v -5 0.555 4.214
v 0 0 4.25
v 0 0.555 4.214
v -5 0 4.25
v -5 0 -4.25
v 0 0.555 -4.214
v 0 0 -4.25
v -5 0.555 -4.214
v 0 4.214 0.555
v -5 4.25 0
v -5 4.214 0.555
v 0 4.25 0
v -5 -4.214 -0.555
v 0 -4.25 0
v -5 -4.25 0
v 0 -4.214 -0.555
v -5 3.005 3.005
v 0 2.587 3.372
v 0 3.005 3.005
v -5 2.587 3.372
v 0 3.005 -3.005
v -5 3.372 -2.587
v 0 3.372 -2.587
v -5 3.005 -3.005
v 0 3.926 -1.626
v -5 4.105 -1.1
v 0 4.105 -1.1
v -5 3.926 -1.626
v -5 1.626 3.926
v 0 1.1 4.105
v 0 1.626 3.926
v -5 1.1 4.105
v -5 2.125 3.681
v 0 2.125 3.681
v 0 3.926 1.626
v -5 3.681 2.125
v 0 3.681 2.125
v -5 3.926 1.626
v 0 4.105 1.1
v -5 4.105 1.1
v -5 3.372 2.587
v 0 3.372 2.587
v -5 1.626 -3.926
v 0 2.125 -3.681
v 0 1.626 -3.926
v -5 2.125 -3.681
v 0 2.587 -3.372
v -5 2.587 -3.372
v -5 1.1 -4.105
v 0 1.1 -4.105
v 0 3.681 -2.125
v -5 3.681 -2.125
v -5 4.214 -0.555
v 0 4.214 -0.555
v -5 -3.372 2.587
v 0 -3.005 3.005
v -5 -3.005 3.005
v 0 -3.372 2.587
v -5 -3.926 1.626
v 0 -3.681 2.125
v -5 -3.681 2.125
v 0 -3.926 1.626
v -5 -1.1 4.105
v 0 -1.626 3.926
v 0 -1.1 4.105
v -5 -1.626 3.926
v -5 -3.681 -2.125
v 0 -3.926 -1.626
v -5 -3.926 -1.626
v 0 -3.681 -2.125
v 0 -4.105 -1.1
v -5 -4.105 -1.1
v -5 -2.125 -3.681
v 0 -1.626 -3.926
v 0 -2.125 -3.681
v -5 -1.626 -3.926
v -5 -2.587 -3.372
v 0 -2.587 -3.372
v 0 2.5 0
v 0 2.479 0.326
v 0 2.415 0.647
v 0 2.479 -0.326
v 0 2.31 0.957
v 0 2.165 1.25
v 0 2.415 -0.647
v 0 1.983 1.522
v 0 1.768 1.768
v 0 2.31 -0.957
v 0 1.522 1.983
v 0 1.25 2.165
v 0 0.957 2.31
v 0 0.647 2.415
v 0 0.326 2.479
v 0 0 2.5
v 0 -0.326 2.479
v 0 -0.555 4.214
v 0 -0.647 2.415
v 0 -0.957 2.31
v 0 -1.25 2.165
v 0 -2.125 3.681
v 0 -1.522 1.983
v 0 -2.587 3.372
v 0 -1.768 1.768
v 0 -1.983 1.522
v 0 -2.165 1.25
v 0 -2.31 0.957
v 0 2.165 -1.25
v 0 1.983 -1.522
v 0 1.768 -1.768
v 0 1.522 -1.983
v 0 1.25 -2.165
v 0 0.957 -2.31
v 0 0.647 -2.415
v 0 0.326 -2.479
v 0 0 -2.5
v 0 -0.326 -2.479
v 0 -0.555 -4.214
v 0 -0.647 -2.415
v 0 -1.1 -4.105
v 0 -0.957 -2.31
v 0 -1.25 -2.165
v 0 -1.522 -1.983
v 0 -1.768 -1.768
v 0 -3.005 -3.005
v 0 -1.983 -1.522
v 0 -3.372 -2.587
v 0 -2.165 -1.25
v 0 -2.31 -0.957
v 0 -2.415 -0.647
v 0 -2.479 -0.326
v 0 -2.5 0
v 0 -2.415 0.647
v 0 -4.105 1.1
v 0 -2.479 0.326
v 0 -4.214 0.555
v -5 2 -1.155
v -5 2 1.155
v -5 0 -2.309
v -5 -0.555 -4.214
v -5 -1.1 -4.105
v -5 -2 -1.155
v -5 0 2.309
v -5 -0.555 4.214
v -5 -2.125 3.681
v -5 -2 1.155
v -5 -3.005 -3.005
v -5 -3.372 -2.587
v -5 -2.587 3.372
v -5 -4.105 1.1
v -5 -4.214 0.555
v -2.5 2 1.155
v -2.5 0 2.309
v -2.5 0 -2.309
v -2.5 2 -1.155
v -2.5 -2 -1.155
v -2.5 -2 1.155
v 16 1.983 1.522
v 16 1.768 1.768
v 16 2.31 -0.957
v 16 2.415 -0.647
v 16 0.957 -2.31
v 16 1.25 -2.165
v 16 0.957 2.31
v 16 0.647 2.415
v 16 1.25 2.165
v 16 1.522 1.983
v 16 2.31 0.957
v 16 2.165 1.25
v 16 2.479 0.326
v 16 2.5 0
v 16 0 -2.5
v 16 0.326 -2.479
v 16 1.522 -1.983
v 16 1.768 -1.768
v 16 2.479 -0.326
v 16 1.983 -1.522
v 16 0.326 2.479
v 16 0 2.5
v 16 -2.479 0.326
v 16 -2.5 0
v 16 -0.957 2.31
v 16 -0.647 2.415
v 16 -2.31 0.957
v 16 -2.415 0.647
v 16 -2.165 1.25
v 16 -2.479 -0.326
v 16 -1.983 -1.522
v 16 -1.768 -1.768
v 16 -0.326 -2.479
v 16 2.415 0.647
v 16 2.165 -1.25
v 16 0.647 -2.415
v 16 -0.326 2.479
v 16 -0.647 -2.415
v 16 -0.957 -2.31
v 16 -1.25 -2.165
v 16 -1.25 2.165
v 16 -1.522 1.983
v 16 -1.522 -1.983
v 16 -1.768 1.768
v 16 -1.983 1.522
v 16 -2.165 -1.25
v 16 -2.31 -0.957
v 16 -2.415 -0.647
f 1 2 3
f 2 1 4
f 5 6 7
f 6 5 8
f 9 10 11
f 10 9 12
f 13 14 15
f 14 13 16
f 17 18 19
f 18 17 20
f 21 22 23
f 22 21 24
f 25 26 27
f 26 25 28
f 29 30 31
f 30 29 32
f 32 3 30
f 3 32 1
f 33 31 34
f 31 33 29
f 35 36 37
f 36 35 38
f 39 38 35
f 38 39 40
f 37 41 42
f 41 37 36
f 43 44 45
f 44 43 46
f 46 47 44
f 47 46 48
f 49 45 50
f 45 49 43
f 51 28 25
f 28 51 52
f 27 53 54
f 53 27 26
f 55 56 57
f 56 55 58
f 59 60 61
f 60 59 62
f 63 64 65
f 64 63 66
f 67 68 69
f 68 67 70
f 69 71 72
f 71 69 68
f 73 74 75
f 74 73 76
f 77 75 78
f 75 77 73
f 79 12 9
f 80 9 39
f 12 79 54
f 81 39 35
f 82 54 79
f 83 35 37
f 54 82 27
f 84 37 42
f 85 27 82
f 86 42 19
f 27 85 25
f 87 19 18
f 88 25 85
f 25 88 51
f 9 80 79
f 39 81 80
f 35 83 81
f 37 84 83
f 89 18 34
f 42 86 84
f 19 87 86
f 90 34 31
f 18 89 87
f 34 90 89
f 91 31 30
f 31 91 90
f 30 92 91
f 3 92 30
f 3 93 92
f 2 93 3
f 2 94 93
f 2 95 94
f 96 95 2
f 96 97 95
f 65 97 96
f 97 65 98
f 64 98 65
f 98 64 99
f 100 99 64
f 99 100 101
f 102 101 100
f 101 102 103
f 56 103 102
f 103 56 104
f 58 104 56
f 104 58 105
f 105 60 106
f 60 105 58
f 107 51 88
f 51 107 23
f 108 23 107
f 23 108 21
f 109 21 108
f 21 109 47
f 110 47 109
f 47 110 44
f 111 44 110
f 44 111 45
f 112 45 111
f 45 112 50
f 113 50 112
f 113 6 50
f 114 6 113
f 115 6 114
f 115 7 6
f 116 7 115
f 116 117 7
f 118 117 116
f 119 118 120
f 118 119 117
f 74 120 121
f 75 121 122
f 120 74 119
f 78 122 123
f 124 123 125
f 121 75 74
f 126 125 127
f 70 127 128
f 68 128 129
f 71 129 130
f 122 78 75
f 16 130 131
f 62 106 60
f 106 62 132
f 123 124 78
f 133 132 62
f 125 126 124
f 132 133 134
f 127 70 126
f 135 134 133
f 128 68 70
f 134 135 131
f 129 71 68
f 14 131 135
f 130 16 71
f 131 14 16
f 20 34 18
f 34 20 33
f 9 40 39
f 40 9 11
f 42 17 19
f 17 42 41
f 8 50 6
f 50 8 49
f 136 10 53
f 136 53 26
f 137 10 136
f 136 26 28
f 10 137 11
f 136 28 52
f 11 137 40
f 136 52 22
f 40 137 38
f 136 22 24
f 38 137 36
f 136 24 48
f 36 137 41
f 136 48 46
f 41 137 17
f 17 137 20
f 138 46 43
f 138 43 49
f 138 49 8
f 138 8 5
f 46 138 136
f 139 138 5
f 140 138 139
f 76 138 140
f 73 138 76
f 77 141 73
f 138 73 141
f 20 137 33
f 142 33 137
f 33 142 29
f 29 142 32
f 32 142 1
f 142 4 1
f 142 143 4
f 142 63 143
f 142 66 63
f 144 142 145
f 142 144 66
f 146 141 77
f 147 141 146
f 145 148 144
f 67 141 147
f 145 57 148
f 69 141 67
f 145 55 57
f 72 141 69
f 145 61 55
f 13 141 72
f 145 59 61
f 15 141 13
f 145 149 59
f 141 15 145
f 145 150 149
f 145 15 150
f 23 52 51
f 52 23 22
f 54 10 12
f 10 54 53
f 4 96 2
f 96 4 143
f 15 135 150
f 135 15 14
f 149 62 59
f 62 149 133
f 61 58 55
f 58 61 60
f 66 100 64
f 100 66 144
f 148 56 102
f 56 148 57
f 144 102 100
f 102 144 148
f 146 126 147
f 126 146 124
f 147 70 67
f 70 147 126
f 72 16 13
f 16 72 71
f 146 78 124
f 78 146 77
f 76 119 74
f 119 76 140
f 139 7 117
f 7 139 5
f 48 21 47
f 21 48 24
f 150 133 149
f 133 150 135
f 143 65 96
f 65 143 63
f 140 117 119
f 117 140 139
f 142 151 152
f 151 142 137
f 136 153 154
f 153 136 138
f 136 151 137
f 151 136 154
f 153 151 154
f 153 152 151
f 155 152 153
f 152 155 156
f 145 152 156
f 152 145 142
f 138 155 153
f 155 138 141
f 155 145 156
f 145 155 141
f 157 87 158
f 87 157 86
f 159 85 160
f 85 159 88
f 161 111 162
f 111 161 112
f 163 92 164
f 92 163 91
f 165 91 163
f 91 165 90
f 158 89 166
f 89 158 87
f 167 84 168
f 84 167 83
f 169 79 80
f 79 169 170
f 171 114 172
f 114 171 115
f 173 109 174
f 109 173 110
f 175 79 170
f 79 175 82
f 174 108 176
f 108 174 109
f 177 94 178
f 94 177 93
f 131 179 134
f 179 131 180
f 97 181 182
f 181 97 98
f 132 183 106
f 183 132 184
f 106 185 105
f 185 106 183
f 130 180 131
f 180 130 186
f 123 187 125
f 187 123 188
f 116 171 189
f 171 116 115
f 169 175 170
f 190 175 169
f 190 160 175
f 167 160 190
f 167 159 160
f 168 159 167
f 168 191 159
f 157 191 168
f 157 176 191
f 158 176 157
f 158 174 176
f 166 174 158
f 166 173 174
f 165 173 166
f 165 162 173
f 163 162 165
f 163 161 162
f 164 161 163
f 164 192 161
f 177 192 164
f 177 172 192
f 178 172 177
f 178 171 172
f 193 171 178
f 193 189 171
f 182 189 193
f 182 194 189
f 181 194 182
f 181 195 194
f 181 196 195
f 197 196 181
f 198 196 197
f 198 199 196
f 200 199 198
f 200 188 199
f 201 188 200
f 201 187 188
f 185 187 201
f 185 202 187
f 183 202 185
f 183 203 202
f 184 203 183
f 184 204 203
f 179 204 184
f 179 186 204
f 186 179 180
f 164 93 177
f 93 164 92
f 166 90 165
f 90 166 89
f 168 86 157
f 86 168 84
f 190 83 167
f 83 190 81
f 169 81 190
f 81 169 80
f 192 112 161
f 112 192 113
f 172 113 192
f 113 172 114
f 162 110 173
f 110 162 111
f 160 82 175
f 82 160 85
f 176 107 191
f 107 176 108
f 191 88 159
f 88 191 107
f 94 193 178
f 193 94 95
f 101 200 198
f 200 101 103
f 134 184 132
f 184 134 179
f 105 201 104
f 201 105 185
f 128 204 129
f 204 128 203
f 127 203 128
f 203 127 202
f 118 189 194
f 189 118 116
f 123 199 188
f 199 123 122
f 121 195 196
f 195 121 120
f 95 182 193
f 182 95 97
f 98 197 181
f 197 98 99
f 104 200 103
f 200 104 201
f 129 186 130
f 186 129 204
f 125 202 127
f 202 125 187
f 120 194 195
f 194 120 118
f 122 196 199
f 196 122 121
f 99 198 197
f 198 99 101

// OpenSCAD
// file: ../../lib/nutsnbolts/data-access.scad
// Norm Nuts and Bolts - a OpenSCAD library
// Copyright (C) 2012  Johannes Kneer

// This program is free software: you can redistribute it and/or modify
// it under the terms of the GNU General Public License as published by
// the Free Software Foundation, either version 3 of the License, or
// (at your option) any later version.

// This program is distributed in the hope that it will be useful,
// but WITHOUT ANY WARRANTY; without even the implied warranty of
// MERCHANTABILITY or FITNESS FOR A PARTICULAR PURPOSE.  See the
// GNU General Public License for more details.

// You should have received a copy of the GNU General Public License
// along with this program.  If not, see <http://www.gnu.org/licenses/>.


// DATABASE ACCESS FUNCTIONS AND CONSTANTS



// == CONSTANTS ==

// screw table access keys
_NB_S_DESC            = 0;
_NB_S_FAMKEY			    = 1;
_NB_S_LENGTH          = 2;
_NB_S_NOTHREAD_LENGTH = 3;

_NB_F_DESC			      = 0;
_NB_F_OUTER_DIA       = 1;
_NB_F_INNER_DIA       = 2;
_NB_F_LEAD            = 3;
_NB_F_KEY             = 4;
_NB_F_KEY_DEPTH       = 5;
_NB_F_HEAD_HEIGHT     = 6;
_NB_F_HEAD_DIA        = 7;
_NB_F_NUT_KEY         = 8;
_NB_F_NUT_HEIGHT      = 9;
_NB_F_PITCH_FINE      = 10;
_NB_F_PITCH_MEDIUM    = 11;
_NB_F_PITCH_COARSE    = 12;


// == FUNCTIONS ==

// _get_screw("descriptor")   with descriptor = M8x25
//   find the line for a general object in the data matrix

function _get_screw(n) = data_screw[search([n], data_screw)[0]];
function _get_screw_fam(n) = data_screw_fam[search([_get_screw(n)[_NB_S_FAMKEY]], data_screw_fam)[0]];

function _get_fam(n) = data_screw_fam[search([n], data_screw_fam)[0]];


// _get_XXXXX("descriptor") functions
// find a single property in the database

function _get_desc(n)        = _get_screw(n)[_NB_S_DESC];
function _get_famkey(n)         = _get_screw(n)[_NB_S_FAMKEY];
function _get_length(n)      = _get_screw(n)[_NB_S_LENGTH];
function _get_nt_length(n)   = _get_screw(n)[_NB_S_NOTHREAD_LENGTH];

function _get_outer_dia(n)   = _get_screw_fam(n)[_NB_F_OUTER_DIA];
function _get_inner_dia(n)   = _get_screw_fam(n)[_NB_F_INNER_DIA];
function _get_lead(n)        = _get_screw_fam(n)[_NB_F_LEAD];
function _get_head_height(n) = _get_screw_fam(n)[_NB_F_HEAD_HEIGHT];
function _get_head_dia(n)    = _get_screw_fam(n)[_NB_F_HEAD_DIA];
function _get_nut_key(n)     = _get_screw_fam(n)[_NB_F_NUT_KEY];
function _get_nut_height(n)  = _get_screw_fam(n)[_NB_F_NUT_HEIGHT];
function _get_fine_pitch(n)  = _get_screw_fam(n)[_NB_F_PITCH_FINE];
function _get_medium_pitch(n)  = _get_screw_fam(n)[_NB_F_PITCH_MEDIUM];
function _get_coarse_pitch(n)  = _get_screw_fam(n)[_NB_F_PITCH_COARSE];
// main file
/**********************************************************************************************************************
 **
 ** parts/vitamins/screw_M5x16.scad
 **
 ** This file renders a screw of the dimensions specified by the file name.
 **
 **********************************************************************************************************************/

include <../../lib/nutsnbolts/cyl_head_bolt.scad>;

$fn = 48;
rotate([0, -90, 0])
	screw("M5x16"); 
